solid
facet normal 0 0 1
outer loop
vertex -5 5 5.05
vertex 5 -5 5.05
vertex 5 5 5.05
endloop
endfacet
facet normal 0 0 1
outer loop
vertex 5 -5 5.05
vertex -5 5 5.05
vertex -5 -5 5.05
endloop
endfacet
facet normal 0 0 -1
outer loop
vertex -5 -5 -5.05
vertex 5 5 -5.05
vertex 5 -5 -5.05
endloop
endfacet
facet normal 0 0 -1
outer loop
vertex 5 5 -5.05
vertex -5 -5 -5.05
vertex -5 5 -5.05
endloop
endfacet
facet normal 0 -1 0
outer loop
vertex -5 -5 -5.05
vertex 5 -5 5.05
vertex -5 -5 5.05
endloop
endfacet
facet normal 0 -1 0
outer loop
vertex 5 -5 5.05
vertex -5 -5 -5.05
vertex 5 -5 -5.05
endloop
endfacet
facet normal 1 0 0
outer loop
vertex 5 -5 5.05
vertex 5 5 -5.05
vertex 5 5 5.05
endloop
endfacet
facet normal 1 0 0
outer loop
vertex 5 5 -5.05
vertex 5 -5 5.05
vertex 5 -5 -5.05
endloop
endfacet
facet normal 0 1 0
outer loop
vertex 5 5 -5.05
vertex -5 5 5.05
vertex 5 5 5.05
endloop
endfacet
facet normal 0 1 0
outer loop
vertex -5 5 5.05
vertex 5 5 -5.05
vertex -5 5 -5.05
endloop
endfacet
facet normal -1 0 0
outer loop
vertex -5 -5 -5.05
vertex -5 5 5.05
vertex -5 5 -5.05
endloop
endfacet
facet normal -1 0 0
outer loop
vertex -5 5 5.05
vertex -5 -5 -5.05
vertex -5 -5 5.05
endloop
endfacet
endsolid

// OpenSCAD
// Generated Cube - Slightly Different Size (10x10x10.1)
cube([10, 10, 10.1], center=true); 
